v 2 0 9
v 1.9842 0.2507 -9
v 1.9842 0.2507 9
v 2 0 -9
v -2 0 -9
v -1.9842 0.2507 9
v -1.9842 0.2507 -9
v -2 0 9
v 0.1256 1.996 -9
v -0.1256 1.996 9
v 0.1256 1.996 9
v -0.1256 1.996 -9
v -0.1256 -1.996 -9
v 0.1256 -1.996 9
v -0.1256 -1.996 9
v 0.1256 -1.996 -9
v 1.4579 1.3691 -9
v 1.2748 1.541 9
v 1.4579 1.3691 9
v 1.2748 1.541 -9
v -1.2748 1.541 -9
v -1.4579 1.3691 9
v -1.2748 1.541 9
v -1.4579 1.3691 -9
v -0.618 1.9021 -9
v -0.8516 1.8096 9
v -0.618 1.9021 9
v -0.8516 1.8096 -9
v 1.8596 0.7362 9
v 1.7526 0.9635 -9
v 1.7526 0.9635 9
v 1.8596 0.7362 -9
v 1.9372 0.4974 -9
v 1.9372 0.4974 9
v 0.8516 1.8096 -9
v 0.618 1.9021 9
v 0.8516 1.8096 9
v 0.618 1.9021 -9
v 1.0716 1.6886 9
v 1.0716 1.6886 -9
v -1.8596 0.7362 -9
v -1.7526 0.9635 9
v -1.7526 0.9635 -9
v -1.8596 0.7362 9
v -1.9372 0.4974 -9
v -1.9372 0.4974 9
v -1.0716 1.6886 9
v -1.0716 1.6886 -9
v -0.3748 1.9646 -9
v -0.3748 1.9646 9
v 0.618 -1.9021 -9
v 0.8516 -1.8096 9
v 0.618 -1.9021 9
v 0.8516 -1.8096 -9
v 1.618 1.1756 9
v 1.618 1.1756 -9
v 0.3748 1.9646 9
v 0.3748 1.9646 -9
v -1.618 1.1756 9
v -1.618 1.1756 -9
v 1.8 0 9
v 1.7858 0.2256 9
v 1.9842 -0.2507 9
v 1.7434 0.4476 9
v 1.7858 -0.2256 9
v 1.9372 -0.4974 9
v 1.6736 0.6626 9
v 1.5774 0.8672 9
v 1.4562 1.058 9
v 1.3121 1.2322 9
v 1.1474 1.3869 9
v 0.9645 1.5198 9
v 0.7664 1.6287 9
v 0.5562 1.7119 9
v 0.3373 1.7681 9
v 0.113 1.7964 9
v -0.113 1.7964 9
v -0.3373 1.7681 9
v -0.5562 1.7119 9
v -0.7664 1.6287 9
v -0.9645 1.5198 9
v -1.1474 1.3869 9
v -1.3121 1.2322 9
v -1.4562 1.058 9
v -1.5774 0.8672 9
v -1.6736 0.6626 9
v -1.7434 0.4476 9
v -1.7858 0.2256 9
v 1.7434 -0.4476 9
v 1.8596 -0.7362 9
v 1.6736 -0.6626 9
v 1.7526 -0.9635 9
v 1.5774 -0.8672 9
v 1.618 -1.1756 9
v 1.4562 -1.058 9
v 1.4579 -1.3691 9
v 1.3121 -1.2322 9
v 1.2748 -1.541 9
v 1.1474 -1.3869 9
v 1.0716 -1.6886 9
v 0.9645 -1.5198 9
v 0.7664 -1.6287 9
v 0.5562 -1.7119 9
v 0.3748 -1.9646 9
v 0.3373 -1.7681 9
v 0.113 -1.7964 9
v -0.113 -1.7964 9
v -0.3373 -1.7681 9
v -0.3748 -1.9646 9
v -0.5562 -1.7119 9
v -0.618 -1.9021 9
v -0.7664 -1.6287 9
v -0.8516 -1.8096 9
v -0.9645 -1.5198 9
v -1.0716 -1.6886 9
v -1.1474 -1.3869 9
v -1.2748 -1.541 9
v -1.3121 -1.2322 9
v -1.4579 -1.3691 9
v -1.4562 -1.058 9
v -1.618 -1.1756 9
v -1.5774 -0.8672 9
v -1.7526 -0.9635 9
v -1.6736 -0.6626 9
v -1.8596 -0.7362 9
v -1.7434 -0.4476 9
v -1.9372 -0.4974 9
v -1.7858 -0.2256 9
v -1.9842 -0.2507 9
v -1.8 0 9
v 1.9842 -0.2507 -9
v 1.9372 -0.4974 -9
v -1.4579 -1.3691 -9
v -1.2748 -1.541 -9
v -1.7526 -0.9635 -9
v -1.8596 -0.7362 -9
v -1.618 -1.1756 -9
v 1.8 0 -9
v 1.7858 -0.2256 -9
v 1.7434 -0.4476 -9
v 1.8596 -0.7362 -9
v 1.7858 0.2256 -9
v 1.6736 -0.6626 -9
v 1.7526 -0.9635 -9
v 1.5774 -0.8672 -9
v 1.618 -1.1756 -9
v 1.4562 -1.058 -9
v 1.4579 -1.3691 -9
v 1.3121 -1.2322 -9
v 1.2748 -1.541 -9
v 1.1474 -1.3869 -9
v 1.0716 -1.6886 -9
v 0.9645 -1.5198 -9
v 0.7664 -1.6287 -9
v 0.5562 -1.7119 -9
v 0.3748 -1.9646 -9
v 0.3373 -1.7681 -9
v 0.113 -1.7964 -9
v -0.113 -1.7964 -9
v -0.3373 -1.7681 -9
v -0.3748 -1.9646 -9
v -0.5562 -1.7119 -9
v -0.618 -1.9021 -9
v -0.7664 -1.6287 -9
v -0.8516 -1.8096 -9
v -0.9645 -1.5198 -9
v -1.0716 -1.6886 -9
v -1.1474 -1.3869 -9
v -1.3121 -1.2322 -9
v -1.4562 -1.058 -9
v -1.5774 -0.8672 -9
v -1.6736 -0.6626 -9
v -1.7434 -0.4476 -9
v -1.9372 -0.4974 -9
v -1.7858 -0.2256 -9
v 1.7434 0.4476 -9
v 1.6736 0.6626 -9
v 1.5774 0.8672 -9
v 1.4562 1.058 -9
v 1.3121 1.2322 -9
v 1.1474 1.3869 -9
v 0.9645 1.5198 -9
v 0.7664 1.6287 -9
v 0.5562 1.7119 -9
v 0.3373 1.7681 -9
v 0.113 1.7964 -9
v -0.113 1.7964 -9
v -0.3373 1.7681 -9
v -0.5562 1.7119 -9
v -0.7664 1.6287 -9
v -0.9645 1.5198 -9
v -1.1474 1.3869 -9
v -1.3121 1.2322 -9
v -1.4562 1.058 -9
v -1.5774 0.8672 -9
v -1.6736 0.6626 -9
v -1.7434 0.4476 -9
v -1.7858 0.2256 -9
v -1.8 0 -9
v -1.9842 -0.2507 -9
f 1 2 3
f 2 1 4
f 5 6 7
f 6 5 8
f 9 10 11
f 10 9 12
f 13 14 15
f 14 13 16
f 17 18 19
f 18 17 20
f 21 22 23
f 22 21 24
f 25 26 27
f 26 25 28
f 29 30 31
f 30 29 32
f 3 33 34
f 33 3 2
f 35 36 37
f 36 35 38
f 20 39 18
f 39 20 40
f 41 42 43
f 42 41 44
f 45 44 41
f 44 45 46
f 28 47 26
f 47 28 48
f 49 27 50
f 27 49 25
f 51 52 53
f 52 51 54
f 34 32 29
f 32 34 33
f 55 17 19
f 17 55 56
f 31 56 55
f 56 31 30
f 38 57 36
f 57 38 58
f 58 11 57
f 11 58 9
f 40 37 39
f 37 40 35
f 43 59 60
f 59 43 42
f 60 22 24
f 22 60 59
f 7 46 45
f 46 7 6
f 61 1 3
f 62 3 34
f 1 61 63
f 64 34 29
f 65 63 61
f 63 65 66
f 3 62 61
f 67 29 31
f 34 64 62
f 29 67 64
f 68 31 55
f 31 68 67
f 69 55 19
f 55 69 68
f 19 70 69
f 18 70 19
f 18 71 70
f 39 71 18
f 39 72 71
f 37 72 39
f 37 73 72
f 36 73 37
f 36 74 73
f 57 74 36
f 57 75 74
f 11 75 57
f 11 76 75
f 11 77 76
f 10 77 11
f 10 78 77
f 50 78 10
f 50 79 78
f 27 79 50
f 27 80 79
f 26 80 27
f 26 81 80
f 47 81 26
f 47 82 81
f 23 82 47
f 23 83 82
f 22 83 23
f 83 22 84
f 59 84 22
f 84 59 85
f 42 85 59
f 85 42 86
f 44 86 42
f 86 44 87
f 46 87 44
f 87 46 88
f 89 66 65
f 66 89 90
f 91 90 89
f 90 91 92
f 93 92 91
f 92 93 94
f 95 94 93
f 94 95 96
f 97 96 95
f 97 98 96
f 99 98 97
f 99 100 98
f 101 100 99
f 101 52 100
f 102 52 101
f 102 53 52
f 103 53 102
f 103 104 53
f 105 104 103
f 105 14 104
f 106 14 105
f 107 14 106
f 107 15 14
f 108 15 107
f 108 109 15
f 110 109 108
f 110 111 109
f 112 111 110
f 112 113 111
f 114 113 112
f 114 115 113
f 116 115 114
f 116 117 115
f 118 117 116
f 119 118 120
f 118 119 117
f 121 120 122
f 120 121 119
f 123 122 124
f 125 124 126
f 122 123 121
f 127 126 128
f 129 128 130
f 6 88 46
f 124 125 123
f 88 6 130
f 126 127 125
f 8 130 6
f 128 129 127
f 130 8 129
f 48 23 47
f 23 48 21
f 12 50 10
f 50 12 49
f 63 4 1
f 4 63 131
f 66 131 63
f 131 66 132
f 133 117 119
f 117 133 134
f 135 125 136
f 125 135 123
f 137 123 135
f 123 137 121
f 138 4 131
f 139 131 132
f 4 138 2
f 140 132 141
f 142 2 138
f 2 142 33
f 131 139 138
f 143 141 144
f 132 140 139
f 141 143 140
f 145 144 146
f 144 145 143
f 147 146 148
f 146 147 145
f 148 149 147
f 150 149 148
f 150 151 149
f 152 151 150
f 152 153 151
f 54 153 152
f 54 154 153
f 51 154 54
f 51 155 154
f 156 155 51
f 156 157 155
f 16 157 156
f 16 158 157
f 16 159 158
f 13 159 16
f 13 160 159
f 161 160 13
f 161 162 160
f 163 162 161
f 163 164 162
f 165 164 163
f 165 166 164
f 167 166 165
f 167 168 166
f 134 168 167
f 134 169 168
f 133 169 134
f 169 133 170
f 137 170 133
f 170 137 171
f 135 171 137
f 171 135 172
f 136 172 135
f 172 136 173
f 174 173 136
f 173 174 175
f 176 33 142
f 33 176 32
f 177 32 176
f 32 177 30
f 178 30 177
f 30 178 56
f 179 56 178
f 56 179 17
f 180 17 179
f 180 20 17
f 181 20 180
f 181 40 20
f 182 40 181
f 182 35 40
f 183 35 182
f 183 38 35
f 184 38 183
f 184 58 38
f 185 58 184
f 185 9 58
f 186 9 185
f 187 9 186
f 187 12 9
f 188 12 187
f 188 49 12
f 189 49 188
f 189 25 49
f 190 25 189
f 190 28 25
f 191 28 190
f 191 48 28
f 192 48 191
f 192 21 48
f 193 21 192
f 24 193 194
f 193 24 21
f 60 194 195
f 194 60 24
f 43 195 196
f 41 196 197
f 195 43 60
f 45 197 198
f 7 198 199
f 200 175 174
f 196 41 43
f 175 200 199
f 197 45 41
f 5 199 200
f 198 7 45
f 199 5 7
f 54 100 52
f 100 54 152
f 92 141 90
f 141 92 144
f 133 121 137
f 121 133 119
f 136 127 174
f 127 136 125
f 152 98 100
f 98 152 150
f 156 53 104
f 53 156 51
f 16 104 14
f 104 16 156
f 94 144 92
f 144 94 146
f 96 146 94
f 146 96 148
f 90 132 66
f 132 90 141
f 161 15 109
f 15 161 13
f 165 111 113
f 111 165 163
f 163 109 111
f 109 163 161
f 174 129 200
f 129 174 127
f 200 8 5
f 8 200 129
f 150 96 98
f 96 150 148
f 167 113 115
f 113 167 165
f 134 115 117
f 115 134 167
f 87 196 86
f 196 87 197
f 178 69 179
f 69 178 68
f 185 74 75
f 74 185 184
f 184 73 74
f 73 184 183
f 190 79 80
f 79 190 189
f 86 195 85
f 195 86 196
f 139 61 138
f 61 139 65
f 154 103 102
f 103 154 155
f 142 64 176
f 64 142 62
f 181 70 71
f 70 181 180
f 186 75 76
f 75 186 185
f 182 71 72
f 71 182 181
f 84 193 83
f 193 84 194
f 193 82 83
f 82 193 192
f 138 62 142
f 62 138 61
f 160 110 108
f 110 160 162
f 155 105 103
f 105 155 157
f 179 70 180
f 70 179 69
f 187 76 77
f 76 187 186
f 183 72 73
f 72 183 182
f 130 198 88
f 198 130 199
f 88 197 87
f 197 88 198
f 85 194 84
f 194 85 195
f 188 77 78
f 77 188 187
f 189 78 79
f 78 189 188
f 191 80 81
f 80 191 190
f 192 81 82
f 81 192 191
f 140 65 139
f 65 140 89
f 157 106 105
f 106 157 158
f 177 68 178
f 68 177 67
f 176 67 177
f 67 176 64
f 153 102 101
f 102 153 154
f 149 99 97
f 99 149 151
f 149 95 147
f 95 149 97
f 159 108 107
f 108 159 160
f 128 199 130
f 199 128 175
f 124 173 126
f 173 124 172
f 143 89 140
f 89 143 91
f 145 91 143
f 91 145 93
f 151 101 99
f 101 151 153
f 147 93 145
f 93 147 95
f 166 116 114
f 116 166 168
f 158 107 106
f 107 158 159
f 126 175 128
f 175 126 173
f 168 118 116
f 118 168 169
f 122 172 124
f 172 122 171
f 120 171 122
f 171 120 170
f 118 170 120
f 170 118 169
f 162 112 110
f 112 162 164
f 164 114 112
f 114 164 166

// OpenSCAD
$fn = 50;


difference() {
	union() {
		translate(v = [0, 0, -9.0000000000]) {
			cylinder(h = 18, r = 2.0000000000);
		}
	}
	union() {
		translate(v = [0, 0, -100.0000000000]) {
			cylinder(h = 200, r = 1.8000000000);
		}
	}
}
